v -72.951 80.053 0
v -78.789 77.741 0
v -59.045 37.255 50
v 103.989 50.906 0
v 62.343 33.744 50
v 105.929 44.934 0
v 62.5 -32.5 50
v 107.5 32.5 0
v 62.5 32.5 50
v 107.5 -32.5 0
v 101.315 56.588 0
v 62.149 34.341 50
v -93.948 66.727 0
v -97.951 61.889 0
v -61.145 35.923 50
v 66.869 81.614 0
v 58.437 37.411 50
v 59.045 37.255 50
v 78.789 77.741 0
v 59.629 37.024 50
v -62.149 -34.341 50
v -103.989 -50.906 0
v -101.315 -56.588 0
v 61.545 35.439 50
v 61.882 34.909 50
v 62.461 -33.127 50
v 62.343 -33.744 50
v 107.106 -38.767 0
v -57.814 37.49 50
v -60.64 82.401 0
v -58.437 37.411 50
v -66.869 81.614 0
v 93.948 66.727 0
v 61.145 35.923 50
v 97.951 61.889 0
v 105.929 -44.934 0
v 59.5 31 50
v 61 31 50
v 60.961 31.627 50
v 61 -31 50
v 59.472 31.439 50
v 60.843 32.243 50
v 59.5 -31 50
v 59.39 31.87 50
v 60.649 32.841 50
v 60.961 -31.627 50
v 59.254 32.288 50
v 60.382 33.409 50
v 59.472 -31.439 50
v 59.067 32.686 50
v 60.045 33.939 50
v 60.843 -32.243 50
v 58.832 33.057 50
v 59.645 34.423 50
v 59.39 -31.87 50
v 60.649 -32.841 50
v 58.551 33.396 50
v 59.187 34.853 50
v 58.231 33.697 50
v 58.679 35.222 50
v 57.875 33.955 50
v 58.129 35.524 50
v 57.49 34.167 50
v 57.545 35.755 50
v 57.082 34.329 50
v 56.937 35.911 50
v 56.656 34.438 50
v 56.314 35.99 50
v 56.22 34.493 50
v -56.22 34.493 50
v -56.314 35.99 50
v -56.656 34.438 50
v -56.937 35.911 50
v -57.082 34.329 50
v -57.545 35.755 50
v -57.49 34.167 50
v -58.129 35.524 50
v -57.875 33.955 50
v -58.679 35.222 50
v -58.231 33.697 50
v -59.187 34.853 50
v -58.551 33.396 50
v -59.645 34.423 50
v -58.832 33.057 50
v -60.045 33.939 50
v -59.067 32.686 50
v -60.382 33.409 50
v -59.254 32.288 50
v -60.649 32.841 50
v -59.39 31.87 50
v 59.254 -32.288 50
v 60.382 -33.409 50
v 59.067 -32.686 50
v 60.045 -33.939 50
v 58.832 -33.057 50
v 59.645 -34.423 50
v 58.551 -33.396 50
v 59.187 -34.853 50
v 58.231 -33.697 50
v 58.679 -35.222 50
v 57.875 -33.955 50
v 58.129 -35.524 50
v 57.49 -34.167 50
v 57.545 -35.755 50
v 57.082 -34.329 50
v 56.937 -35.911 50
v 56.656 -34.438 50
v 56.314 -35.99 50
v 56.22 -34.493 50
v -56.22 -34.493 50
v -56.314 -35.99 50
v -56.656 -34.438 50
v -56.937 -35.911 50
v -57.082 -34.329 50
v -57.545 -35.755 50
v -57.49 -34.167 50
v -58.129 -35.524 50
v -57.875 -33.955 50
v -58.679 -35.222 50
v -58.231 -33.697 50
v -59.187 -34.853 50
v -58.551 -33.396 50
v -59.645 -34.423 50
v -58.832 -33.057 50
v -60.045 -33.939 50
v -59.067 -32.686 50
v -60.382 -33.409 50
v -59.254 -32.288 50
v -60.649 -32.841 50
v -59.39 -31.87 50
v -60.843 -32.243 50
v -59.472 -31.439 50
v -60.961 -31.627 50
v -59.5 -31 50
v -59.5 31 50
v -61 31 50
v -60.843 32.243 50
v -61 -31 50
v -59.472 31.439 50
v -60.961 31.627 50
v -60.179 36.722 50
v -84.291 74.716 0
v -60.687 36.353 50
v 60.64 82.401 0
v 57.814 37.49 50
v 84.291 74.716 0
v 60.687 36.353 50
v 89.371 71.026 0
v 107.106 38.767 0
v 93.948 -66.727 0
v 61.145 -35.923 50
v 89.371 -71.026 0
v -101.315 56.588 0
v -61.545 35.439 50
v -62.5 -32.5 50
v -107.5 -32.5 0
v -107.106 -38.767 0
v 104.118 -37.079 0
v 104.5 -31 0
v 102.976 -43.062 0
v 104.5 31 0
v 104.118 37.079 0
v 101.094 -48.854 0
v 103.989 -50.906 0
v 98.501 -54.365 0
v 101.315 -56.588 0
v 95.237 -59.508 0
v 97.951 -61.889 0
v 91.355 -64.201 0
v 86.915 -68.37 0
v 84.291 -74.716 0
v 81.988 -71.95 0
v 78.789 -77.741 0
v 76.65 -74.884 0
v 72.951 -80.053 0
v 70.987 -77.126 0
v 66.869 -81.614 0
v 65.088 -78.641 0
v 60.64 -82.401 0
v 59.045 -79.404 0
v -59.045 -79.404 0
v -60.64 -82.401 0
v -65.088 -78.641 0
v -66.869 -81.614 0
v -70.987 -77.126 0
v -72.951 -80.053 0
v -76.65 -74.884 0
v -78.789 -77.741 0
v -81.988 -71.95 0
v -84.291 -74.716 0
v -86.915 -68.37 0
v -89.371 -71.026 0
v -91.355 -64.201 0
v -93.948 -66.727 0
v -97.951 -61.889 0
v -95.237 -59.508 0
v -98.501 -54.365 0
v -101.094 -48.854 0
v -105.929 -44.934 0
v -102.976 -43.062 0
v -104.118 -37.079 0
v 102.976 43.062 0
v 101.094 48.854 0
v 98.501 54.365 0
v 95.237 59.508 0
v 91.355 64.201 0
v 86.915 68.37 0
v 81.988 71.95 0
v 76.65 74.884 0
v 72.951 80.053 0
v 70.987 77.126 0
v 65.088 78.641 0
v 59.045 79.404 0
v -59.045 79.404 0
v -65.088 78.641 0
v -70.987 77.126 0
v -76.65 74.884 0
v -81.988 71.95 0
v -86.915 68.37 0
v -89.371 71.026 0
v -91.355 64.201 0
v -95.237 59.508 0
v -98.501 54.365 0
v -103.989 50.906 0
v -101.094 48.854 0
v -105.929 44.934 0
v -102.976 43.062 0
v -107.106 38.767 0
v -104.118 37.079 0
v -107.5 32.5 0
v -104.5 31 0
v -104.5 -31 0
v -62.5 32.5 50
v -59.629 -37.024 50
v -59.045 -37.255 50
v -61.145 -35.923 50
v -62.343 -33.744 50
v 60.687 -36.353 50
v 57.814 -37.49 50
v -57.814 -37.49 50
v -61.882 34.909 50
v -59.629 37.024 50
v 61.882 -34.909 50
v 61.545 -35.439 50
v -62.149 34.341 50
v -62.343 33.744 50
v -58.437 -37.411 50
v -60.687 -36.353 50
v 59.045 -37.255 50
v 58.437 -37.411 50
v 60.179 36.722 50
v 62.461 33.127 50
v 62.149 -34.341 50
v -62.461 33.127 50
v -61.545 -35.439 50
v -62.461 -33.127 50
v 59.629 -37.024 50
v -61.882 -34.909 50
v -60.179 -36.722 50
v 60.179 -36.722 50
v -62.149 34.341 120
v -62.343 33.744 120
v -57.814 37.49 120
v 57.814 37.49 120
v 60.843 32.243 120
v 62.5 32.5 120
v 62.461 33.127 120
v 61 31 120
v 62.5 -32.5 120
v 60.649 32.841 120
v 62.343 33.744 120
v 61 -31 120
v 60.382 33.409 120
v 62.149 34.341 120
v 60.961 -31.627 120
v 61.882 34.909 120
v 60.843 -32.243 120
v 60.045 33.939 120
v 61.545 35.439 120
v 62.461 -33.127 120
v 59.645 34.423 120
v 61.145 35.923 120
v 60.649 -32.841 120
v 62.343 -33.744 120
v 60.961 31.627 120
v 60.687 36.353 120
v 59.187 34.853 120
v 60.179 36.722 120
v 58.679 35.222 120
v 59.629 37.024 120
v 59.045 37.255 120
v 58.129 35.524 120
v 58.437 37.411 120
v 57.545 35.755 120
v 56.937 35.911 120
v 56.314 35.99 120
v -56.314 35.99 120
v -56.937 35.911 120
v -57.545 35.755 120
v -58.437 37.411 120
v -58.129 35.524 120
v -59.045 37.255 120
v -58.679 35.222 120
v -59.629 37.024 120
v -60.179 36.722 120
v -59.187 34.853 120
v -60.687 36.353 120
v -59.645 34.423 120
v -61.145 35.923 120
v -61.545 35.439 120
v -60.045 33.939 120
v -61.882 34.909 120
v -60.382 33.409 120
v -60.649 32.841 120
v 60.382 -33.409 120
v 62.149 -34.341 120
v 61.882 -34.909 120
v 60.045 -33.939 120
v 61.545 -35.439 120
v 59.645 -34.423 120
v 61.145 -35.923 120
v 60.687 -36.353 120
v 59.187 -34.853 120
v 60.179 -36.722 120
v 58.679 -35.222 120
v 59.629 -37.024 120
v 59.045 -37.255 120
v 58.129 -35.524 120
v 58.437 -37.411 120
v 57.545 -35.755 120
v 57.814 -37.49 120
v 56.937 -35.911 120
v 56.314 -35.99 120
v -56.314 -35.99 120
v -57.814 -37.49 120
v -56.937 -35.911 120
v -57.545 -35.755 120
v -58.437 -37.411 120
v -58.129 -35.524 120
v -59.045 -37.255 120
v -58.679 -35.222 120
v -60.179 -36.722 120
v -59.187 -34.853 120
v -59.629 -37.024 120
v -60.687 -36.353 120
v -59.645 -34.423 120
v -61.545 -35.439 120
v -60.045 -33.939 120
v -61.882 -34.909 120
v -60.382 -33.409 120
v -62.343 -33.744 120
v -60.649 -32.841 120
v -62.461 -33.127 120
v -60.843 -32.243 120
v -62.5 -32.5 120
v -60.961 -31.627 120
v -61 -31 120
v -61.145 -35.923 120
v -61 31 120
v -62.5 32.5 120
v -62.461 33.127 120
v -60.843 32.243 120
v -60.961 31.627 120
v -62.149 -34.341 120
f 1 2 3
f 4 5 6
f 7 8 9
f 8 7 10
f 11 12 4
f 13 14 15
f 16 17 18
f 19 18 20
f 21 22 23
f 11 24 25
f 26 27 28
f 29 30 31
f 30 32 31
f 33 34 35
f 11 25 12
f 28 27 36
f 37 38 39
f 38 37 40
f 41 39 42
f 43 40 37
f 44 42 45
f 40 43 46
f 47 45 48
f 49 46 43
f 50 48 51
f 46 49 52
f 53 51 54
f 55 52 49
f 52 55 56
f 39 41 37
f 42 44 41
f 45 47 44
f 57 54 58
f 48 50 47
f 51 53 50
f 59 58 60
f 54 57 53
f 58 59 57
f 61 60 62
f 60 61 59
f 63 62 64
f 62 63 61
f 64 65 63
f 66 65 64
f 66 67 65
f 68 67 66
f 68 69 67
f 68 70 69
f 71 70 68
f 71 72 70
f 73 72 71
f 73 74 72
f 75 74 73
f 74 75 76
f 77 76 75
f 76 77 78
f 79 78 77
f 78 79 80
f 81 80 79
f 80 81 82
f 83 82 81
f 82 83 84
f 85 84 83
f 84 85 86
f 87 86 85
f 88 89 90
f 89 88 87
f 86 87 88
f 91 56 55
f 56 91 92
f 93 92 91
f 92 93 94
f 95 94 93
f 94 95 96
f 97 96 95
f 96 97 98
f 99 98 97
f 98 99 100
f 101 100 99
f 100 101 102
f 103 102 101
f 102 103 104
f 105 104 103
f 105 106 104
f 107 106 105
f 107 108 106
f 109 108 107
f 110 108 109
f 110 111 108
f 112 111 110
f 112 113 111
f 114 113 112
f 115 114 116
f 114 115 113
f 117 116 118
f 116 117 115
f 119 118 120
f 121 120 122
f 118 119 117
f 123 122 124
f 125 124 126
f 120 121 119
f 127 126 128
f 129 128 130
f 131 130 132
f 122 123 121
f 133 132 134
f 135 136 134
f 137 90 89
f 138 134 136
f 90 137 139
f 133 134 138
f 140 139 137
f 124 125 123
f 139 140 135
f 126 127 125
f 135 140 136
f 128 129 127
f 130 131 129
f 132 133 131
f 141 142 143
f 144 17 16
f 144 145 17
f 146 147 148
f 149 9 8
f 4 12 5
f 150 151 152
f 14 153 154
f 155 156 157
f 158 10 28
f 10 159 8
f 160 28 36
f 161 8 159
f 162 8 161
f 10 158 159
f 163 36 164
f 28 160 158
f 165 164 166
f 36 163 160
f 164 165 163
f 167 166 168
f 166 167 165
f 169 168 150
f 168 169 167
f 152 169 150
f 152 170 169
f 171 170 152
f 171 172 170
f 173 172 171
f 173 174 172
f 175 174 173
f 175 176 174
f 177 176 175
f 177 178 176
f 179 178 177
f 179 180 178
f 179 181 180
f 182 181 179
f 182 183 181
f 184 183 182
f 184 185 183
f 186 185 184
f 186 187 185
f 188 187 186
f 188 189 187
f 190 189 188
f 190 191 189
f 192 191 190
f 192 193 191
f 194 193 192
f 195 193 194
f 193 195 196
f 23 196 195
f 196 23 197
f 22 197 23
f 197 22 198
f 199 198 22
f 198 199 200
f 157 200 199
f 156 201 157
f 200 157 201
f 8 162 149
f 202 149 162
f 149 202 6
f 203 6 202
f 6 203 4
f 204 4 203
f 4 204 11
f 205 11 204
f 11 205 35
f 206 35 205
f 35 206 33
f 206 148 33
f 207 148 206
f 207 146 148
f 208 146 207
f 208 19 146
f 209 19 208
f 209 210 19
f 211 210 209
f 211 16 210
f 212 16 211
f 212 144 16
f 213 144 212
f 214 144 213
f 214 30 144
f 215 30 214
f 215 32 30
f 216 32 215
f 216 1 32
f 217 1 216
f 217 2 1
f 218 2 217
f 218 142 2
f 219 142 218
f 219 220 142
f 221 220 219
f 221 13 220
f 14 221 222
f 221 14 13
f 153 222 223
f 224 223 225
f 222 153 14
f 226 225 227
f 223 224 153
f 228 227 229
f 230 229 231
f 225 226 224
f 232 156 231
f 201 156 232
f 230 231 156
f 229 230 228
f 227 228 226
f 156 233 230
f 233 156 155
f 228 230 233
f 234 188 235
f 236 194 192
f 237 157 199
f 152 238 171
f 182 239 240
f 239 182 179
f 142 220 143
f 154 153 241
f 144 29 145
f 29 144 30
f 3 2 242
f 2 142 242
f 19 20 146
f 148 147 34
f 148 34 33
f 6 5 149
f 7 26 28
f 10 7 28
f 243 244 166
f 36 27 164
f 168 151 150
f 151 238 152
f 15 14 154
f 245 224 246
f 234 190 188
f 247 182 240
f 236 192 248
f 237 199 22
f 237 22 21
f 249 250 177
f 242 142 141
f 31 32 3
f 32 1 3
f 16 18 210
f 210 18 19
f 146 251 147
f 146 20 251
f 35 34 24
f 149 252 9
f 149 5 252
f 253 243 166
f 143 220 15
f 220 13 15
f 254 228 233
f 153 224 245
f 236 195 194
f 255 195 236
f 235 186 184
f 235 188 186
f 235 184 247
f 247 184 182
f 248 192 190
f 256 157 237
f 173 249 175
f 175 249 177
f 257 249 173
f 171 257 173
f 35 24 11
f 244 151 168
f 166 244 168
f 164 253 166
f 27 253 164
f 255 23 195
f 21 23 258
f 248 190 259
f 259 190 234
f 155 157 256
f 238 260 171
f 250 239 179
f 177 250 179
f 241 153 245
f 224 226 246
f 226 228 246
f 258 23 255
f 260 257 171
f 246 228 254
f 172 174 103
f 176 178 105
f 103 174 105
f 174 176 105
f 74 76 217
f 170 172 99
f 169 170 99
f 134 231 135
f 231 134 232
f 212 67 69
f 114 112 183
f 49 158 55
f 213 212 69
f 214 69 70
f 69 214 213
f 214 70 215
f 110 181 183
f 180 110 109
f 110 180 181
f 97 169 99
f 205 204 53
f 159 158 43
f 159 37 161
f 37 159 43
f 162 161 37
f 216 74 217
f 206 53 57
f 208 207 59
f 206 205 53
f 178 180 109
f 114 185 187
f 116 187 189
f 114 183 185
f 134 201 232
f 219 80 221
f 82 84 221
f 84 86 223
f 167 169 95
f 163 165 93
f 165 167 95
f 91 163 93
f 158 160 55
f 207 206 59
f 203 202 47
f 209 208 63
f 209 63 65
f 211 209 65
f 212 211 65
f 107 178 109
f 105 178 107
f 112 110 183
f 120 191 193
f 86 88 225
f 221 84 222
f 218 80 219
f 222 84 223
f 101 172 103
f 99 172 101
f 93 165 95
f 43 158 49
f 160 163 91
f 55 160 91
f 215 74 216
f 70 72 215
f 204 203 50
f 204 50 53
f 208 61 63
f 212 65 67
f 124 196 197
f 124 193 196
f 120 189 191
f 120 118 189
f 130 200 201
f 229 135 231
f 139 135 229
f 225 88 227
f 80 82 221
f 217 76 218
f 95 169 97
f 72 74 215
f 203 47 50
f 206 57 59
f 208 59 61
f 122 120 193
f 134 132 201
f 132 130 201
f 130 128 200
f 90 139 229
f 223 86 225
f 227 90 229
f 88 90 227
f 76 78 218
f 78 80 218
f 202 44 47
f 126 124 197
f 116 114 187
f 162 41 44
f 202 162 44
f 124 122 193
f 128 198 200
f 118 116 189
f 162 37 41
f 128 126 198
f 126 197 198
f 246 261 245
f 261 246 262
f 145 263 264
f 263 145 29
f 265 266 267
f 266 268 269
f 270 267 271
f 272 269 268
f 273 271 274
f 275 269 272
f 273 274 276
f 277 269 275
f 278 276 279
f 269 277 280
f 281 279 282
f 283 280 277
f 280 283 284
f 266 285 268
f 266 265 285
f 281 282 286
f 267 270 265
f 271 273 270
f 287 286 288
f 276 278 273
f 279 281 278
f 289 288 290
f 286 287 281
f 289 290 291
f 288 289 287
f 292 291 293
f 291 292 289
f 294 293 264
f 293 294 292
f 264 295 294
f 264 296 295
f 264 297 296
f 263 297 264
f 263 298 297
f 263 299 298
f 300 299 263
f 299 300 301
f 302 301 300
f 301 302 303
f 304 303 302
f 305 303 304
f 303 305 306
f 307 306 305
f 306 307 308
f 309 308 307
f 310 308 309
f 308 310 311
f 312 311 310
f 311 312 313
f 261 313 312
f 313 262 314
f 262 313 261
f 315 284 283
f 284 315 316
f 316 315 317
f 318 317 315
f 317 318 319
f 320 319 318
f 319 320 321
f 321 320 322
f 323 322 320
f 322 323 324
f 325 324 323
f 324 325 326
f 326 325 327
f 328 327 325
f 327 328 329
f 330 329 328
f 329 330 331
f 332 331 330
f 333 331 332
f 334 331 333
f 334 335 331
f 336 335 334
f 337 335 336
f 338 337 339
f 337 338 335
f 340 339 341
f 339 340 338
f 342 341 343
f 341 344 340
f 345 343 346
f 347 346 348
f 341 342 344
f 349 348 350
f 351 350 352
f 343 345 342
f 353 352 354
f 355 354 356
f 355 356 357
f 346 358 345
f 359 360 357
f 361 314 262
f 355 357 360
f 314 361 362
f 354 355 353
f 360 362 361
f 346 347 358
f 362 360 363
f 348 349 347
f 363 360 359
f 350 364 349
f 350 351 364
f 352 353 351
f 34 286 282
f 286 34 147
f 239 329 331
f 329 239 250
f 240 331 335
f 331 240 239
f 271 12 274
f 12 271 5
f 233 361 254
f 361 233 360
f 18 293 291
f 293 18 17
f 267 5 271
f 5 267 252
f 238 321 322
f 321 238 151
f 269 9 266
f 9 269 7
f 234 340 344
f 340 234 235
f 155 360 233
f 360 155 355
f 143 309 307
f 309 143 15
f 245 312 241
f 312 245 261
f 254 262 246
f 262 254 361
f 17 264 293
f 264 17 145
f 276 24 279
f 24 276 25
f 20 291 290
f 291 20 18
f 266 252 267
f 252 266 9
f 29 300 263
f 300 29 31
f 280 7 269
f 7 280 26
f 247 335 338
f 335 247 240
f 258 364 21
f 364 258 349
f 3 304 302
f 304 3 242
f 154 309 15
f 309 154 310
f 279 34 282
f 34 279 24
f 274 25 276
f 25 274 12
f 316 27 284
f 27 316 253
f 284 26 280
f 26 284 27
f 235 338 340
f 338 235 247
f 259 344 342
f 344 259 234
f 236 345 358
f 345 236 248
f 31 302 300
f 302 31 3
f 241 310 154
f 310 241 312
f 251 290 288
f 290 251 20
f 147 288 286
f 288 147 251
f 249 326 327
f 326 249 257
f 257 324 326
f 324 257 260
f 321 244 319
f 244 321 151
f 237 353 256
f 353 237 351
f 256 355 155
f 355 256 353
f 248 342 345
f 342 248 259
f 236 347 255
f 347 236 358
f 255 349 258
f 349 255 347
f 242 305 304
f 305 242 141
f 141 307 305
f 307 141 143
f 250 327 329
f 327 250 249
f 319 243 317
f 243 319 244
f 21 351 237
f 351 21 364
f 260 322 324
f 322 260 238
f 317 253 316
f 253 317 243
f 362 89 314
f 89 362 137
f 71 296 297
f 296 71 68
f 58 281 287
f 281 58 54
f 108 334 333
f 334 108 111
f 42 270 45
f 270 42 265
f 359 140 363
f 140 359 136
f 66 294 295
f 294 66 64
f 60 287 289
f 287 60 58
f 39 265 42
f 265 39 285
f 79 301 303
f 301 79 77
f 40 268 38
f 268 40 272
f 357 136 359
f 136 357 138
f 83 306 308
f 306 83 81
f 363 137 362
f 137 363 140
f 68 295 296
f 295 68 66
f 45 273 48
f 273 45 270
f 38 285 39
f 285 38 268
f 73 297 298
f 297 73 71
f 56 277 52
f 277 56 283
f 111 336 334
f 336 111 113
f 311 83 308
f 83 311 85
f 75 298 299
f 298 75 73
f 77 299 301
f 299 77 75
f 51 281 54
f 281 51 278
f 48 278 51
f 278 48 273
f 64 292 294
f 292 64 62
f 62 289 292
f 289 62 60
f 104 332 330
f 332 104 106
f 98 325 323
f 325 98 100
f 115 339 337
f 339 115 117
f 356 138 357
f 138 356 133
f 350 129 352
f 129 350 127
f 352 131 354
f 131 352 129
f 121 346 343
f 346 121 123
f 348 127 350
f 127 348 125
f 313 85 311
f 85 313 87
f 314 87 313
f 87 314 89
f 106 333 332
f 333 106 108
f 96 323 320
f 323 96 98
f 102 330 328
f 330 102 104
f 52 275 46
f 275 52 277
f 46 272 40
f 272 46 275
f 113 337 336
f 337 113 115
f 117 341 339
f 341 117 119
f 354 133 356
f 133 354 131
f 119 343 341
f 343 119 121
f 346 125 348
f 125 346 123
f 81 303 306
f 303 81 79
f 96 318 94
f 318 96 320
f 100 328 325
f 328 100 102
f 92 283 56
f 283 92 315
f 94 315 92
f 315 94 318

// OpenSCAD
$fn = 50;


difference() {
	union() {
		translate(v = [0, 0, 0]) {
			rotate(a = [0, 0, 0]) {
				difference() {
					union() {
						hull() {
							translate(v = [-57.5000000000, 32.5000000000, 0]) {
								cylinder(h = 50, r = 5, r1 = 50.0000000000, r2 = 5);
							}
							translate(v = [57.5000000000, 32.5000000000, 0]) {
								cylinder(h = 50, r = 5, r1 = 50.0000000000, r2 = 5);
							}
							translate(v = [-57.5000000000, -32.5000000000, 0]) {
								cylinder(h = 50, r = 5, r1 = 50.0000000000, r2 = 5);
							}
							translate(v = [57.5000000000, -32.5000000000, 0]) {
								cylinder(h = 50, r = 5, r1 = 50.0000000000, r2 = 5);
							}
						}
					}
					union() {
						hull() {
							translate(v = [-56.0000000000, 31.0000000000, 0]) {
								cylinder(h = 50, r = 5, r1 = 48.5000000000, r2 = 3.5000000000);
							}
							translate(v = [56.0000000000, 31.0000000000, 0]) {
								cylinder(h = 50, r = 5, r1 = 48.5000000000, r2 = 3.5000000000);
							}
							translate(v = [-56.0000000000, -31.0000000000, 0]) {
								cylinder(h = 50, r = 5, r1 = 48.5000000000, r2 = 3.5000000000);
							}
							translate(v = [56.0000000000, -31.0000000000, 0]) {
								cylinder(h = 50, r = 5, r1 = 48.5000000000, r2 = 3.5000000000);
							}
						}
					}
				}
			}
		}
		translate(v = [0, 0, 50]) {
			rotate(a = [0, 0, 0]) {
				difference() {
					union() {
						hull() {
							translate(v = [-57.5000000000, 32.5000000000, 0]) {
								cylinder(h = 70, r = 5);
							}
							translate(v = [57.5000000000, 32.5000000000, 0]) {
								cylinder(h = 70, r = 5);
							}
							translate(v = [-57.5000000000, -32.5000000000, 0]) {
								cylinder(h = 70, r = 5);
							}
							translate(v = [57.5000000000, -32.5000000000, 0]) {
								cylinder(h = 70, r = 5);
							}
						}
					}
					union() {
						hull() {
							translate(v = [-56.0000000000, 31.0000000000, 0]) {
								cylinder(h = 70, r = 5);
							}
							translate(v = [56.0000000000, 31.0000000000, 0]) {
								cylinder(h = 70, r = 5);
							}
							translate(v = [-56.0000000000, -31.0000000000, 0]) {
								cylinder(h = 70, r = 5);
							}
							translate(v = [56.0000000000, -31.0000000000, 0]) {
								cylinder(h = 70, r = 5);
							}
						}
					}
				}
			}
		}
	}
	union();
}
